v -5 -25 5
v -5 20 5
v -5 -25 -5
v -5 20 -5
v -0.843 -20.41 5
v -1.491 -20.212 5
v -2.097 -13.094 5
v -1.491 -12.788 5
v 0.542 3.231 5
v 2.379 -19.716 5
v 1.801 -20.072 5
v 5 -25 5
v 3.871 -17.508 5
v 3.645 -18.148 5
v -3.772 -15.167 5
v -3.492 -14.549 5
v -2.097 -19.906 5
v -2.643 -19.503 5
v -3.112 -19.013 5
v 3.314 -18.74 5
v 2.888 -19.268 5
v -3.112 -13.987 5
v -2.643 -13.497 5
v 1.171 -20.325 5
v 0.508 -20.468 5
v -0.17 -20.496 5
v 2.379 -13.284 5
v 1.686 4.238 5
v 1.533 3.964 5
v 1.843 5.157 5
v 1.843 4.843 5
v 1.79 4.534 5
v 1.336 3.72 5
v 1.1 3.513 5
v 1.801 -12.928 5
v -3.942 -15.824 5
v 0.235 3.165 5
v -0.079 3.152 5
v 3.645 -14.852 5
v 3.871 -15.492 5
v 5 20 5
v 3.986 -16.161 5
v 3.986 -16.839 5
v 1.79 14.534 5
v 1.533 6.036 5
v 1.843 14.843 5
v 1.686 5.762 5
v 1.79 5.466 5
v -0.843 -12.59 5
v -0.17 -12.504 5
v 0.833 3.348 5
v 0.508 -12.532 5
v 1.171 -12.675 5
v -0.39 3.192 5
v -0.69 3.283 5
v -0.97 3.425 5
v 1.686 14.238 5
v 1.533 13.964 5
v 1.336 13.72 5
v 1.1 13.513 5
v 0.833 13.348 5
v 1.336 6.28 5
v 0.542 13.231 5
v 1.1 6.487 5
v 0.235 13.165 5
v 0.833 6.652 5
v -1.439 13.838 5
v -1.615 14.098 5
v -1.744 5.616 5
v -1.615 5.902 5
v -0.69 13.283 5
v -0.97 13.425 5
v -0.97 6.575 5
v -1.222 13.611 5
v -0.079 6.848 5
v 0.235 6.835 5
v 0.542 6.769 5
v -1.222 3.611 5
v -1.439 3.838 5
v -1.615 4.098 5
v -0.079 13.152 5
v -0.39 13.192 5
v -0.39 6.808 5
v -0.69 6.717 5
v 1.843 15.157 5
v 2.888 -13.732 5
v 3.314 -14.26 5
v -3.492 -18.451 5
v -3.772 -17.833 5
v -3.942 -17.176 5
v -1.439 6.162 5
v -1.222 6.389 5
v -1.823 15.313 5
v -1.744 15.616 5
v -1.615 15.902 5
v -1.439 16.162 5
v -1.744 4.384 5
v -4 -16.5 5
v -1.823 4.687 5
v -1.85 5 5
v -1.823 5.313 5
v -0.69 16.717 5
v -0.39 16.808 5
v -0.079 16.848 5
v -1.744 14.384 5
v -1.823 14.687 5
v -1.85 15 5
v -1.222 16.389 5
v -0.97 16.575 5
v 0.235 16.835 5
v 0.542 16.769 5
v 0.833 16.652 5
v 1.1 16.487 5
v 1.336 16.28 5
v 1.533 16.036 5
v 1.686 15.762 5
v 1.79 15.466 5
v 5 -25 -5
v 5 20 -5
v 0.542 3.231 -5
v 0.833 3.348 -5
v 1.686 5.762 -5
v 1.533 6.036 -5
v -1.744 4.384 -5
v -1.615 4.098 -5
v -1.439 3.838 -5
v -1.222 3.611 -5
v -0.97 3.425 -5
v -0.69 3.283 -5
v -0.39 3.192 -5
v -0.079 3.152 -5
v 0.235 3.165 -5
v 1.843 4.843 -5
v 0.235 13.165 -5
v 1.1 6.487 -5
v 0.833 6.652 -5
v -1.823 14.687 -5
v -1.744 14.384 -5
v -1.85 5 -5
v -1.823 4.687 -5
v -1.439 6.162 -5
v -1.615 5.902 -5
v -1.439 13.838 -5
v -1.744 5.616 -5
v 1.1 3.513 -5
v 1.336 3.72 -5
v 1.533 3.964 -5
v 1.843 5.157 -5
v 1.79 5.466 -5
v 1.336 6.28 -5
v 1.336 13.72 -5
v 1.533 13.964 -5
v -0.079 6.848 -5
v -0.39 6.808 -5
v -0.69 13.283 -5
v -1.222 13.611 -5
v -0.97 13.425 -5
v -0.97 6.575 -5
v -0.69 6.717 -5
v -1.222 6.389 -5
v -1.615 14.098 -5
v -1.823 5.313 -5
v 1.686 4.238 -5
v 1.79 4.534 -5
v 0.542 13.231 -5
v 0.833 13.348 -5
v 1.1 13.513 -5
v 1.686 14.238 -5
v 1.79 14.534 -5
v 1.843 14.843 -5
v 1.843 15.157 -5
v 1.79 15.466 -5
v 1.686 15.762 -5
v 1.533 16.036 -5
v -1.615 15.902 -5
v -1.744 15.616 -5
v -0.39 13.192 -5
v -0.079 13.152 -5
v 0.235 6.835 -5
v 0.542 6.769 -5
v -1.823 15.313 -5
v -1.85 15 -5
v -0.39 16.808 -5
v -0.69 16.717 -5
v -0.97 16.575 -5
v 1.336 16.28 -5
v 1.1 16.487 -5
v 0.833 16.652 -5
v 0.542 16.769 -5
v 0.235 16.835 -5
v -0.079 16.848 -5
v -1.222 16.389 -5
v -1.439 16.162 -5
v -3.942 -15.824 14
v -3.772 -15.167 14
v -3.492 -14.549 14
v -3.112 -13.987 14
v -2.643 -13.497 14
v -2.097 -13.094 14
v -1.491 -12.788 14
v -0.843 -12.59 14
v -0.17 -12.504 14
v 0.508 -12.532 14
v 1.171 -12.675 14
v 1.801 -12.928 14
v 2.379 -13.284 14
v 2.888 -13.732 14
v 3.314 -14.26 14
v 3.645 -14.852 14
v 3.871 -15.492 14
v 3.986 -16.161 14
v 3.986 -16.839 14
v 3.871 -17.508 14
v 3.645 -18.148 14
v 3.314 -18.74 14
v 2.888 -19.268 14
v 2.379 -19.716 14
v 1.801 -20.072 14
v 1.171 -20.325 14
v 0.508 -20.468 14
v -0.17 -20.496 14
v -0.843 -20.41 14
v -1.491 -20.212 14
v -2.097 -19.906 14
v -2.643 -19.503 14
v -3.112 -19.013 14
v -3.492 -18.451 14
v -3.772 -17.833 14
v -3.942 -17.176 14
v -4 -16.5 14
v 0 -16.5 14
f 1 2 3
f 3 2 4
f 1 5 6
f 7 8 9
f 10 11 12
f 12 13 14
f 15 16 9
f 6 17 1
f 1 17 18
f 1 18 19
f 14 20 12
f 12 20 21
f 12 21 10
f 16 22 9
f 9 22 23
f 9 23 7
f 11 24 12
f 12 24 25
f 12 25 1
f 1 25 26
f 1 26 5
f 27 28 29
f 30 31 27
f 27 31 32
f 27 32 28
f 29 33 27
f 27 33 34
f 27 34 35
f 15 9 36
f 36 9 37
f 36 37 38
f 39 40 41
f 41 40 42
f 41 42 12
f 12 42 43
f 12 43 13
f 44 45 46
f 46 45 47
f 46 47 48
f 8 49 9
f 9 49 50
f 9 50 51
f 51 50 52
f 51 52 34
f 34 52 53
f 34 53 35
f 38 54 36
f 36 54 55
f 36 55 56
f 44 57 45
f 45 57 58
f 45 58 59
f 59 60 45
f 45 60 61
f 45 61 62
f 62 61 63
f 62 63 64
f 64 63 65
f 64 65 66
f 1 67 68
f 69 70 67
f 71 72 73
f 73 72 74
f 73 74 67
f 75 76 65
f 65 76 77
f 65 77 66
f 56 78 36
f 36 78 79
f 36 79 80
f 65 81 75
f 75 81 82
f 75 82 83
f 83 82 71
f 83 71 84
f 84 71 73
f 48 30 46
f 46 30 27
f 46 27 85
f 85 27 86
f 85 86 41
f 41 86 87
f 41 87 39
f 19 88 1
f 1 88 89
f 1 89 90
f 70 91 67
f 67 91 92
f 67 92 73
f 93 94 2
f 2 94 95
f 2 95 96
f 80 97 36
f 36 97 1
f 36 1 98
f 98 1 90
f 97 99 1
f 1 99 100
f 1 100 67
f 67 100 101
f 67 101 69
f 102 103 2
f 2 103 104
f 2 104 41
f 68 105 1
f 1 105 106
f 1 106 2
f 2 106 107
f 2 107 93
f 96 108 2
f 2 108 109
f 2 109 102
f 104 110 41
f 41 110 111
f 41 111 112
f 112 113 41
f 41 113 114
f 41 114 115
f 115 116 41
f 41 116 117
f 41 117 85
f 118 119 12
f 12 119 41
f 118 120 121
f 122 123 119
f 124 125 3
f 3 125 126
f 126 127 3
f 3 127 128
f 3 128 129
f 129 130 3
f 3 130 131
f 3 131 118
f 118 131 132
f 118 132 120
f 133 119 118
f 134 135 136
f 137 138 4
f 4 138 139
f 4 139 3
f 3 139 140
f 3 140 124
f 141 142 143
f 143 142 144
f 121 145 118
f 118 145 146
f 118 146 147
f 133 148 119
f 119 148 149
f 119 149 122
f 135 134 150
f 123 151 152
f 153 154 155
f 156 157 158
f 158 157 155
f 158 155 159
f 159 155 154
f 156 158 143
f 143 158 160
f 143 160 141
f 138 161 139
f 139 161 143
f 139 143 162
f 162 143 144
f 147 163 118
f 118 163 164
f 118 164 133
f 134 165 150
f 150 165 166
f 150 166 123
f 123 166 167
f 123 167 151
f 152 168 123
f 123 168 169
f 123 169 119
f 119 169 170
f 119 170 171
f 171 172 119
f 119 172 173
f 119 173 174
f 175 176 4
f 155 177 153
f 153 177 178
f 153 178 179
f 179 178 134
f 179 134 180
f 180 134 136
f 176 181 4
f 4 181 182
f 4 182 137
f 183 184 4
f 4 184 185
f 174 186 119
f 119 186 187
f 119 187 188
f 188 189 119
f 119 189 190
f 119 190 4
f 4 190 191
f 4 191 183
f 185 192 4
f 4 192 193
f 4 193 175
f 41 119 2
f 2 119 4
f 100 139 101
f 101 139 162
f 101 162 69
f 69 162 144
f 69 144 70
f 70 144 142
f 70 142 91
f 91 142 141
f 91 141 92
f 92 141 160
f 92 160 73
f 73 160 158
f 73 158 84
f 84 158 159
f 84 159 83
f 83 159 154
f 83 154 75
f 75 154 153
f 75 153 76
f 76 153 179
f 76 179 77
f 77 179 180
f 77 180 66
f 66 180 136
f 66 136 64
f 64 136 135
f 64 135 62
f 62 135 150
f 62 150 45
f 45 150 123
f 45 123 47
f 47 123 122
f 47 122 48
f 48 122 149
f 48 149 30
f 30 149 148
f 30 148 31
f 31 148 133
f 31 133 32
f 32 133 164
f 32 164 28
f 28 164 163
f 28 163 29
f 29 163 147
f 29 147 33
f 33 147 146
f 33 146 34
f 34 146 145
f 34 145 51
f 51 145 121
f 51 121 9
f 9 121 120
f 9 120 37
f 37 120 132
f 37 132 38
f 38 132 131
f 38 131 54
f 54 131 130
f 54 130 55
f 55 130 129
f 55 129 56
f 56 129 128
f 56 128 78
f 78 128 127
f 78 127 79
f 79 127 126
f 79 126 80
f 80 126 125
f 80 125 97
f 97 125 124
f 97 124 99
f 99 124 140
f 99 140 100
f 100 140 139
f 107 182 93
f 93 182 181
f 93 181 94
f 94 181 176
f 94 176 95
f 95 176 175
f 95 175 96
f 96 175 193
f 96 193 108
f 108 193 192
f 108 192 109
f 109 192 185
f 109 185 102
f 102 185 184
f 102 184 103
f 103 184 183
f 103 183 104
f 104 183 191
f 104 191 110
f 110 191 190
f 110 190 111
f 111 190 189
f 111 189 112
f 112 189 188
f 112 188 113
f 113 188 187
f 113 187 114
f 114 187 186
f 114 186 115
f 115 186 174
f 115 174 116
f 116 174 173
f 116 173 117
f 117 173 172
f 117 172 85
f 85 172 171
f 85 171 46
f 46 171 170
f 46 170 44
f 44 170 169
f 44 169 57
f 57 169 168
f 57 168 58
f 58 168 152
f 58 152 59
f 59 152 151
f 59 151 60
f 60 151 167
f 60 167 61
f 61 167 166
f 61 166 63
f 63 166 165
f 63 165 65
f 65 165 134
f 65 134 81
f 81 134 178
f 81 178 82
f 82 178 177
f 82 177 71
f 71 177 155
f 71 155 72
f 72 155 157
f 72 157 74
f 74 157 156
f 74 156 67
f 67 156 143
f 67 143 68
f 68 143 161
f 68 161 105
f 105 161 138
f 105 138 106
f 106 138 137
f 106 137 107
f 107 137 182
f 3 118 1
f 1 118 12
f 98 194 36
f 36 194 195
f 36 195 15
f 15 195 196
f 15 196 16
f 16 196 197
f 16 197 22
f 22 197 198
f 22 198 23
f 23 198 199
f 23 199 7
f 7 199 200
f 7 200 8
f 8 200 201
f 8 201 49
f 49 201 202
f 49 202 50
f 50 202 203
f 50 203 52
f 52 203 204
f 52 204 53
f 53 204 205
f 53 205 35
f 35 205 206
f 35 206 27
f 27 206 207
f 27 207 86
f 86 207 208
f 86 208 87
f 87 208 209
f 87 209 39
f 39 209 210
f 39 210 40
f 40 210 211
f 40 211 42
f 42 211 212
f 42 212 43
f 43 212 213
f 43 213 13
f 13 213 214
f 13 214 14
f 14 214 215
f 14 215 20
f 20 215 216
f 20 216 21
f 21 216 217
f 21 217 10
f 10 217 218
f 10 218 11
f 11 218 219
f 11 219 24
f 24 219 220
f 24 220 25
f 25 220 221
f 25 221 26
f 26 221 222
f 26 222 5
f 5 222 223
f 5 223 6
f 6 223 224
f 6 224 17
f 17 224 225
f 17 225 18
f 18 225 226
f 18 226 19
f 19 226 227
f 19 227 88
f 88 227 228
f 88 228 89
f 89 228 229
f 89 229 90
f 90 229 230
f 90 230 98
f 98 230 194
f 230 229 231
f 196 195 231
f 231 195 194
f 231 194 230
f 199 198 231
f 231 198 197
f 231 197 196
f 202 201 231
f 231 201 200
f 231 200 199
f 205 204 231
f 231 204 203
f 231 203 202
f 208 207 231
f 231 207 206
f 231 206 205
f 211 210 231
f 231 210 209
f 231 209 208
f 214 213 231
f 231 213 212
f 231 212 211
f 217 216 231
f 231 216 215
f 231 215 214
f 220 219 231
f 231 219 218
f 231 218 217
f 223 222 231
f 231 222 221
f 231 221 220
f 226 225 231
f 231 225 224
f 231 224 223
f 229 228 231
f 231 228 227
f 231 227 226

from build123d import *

# Parameters (mm, degrees)
ESQUISSE1_W        = 10
ESQUISSE1_H        = 10
BOSS_EXTRU_1_DEPTH = 20
D_GAGEMENT_M3_51_D = 3.7
ESQUISSE2_W        = 10
ESQUISSE2_H        = 10
BOSS_EXTRU_2_DEPTH = 25
ESQUISSE4_R        = 4
BOSS_EXTRU_3_DEPTH = 9


with BuildPart() as part:
    # Esquisse1 → Boss.-Extru.1 (new body)
    with BuildSketch(Plane(origin=(0, 0, 0), x_dir=(1, 0, 0), z_dir=(0, 1, 0))):
        Rectangle(ESQUISSE1_W, ESQUISSE1_H)
    extrude(amount=BOSS_EXTRU_1_DEPTH)

    # Dégagement M3.51 (through all)
    with Locations(Plane(origin=(0, 0, -5), x_dir=(-1, 0, 0), z_dir=(0, 0, -1))):
        with Locations((0, 15), (0, 5)):
            Hole(D_GAGEMENT_M3_51_D / 2)

    # Esquisse2 → Boss.-Extru.2 (add)
    with BuildSketch(Plane.XZ):
        Rectangle(ESQUISSE2_W, ESQUISSE2_H)
    extrude(amount=BOSS_EXTRU_2_DEPTH)

    # Esquisse4 → Boss.-Extru.3 (add)
    with BuildSketch(Plane(origin=(0, -15, 5), x_dir=(1, 0, 0), z_dir=(0, 0, -1))):
        with Locations(Location((0, 1.5, 0), (0, 0, 180))):
            Circle(ESQUISSE4_R)
    extrude(amount=-BOSS_EXTRU_3_DEPTH)


solid = part.part
